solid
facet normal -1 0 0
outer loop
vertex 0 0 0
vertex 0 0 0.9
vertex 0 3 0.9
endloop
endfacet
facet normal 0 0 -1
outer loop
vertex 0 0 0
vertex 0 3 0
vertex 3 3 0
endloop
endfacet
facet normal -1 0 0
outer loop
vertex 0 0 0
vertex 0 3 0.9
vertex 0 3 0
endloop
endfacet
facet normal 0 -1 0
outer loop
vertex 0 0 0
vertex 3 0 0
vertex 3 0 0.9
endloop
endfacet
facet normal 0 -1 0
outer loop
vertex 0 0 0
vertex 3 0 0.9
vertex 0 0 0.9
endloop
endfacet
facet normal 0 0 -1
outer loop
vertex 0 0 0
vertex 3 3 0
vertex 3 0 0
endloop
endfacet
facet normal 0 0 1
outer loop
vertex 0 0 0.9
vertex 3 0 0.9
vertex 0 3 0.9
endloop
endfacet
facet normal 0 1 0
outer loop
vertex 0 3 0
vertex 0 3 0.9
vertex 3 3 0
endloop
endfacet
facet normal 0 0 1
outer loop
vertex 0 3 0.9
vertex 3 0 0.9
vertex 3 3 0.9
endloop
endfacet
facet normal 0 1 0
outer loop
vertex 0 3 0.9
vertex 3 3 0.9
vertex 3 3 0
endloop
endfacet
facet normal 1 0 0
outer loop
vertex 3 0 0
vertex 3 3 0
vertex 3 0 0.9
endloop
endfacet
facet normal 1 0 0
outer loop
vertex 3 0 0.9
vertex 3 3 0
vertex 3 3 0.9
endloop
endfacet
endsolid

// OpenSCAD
/* Warning, this is a very basic generator with a lot of approximation 
input data : [VDFN, JQA, 3x3x0.9mm, 12, , A, C04-01020A]
generated by com.zoubworld.electronics.cad.model3d.Basic
Date : Sun Feb 15 10:50:49 CET 2026
*/

//body
color("black")
translate([0,0,0])
cube([3.0,3.0,0.9], center=false);
